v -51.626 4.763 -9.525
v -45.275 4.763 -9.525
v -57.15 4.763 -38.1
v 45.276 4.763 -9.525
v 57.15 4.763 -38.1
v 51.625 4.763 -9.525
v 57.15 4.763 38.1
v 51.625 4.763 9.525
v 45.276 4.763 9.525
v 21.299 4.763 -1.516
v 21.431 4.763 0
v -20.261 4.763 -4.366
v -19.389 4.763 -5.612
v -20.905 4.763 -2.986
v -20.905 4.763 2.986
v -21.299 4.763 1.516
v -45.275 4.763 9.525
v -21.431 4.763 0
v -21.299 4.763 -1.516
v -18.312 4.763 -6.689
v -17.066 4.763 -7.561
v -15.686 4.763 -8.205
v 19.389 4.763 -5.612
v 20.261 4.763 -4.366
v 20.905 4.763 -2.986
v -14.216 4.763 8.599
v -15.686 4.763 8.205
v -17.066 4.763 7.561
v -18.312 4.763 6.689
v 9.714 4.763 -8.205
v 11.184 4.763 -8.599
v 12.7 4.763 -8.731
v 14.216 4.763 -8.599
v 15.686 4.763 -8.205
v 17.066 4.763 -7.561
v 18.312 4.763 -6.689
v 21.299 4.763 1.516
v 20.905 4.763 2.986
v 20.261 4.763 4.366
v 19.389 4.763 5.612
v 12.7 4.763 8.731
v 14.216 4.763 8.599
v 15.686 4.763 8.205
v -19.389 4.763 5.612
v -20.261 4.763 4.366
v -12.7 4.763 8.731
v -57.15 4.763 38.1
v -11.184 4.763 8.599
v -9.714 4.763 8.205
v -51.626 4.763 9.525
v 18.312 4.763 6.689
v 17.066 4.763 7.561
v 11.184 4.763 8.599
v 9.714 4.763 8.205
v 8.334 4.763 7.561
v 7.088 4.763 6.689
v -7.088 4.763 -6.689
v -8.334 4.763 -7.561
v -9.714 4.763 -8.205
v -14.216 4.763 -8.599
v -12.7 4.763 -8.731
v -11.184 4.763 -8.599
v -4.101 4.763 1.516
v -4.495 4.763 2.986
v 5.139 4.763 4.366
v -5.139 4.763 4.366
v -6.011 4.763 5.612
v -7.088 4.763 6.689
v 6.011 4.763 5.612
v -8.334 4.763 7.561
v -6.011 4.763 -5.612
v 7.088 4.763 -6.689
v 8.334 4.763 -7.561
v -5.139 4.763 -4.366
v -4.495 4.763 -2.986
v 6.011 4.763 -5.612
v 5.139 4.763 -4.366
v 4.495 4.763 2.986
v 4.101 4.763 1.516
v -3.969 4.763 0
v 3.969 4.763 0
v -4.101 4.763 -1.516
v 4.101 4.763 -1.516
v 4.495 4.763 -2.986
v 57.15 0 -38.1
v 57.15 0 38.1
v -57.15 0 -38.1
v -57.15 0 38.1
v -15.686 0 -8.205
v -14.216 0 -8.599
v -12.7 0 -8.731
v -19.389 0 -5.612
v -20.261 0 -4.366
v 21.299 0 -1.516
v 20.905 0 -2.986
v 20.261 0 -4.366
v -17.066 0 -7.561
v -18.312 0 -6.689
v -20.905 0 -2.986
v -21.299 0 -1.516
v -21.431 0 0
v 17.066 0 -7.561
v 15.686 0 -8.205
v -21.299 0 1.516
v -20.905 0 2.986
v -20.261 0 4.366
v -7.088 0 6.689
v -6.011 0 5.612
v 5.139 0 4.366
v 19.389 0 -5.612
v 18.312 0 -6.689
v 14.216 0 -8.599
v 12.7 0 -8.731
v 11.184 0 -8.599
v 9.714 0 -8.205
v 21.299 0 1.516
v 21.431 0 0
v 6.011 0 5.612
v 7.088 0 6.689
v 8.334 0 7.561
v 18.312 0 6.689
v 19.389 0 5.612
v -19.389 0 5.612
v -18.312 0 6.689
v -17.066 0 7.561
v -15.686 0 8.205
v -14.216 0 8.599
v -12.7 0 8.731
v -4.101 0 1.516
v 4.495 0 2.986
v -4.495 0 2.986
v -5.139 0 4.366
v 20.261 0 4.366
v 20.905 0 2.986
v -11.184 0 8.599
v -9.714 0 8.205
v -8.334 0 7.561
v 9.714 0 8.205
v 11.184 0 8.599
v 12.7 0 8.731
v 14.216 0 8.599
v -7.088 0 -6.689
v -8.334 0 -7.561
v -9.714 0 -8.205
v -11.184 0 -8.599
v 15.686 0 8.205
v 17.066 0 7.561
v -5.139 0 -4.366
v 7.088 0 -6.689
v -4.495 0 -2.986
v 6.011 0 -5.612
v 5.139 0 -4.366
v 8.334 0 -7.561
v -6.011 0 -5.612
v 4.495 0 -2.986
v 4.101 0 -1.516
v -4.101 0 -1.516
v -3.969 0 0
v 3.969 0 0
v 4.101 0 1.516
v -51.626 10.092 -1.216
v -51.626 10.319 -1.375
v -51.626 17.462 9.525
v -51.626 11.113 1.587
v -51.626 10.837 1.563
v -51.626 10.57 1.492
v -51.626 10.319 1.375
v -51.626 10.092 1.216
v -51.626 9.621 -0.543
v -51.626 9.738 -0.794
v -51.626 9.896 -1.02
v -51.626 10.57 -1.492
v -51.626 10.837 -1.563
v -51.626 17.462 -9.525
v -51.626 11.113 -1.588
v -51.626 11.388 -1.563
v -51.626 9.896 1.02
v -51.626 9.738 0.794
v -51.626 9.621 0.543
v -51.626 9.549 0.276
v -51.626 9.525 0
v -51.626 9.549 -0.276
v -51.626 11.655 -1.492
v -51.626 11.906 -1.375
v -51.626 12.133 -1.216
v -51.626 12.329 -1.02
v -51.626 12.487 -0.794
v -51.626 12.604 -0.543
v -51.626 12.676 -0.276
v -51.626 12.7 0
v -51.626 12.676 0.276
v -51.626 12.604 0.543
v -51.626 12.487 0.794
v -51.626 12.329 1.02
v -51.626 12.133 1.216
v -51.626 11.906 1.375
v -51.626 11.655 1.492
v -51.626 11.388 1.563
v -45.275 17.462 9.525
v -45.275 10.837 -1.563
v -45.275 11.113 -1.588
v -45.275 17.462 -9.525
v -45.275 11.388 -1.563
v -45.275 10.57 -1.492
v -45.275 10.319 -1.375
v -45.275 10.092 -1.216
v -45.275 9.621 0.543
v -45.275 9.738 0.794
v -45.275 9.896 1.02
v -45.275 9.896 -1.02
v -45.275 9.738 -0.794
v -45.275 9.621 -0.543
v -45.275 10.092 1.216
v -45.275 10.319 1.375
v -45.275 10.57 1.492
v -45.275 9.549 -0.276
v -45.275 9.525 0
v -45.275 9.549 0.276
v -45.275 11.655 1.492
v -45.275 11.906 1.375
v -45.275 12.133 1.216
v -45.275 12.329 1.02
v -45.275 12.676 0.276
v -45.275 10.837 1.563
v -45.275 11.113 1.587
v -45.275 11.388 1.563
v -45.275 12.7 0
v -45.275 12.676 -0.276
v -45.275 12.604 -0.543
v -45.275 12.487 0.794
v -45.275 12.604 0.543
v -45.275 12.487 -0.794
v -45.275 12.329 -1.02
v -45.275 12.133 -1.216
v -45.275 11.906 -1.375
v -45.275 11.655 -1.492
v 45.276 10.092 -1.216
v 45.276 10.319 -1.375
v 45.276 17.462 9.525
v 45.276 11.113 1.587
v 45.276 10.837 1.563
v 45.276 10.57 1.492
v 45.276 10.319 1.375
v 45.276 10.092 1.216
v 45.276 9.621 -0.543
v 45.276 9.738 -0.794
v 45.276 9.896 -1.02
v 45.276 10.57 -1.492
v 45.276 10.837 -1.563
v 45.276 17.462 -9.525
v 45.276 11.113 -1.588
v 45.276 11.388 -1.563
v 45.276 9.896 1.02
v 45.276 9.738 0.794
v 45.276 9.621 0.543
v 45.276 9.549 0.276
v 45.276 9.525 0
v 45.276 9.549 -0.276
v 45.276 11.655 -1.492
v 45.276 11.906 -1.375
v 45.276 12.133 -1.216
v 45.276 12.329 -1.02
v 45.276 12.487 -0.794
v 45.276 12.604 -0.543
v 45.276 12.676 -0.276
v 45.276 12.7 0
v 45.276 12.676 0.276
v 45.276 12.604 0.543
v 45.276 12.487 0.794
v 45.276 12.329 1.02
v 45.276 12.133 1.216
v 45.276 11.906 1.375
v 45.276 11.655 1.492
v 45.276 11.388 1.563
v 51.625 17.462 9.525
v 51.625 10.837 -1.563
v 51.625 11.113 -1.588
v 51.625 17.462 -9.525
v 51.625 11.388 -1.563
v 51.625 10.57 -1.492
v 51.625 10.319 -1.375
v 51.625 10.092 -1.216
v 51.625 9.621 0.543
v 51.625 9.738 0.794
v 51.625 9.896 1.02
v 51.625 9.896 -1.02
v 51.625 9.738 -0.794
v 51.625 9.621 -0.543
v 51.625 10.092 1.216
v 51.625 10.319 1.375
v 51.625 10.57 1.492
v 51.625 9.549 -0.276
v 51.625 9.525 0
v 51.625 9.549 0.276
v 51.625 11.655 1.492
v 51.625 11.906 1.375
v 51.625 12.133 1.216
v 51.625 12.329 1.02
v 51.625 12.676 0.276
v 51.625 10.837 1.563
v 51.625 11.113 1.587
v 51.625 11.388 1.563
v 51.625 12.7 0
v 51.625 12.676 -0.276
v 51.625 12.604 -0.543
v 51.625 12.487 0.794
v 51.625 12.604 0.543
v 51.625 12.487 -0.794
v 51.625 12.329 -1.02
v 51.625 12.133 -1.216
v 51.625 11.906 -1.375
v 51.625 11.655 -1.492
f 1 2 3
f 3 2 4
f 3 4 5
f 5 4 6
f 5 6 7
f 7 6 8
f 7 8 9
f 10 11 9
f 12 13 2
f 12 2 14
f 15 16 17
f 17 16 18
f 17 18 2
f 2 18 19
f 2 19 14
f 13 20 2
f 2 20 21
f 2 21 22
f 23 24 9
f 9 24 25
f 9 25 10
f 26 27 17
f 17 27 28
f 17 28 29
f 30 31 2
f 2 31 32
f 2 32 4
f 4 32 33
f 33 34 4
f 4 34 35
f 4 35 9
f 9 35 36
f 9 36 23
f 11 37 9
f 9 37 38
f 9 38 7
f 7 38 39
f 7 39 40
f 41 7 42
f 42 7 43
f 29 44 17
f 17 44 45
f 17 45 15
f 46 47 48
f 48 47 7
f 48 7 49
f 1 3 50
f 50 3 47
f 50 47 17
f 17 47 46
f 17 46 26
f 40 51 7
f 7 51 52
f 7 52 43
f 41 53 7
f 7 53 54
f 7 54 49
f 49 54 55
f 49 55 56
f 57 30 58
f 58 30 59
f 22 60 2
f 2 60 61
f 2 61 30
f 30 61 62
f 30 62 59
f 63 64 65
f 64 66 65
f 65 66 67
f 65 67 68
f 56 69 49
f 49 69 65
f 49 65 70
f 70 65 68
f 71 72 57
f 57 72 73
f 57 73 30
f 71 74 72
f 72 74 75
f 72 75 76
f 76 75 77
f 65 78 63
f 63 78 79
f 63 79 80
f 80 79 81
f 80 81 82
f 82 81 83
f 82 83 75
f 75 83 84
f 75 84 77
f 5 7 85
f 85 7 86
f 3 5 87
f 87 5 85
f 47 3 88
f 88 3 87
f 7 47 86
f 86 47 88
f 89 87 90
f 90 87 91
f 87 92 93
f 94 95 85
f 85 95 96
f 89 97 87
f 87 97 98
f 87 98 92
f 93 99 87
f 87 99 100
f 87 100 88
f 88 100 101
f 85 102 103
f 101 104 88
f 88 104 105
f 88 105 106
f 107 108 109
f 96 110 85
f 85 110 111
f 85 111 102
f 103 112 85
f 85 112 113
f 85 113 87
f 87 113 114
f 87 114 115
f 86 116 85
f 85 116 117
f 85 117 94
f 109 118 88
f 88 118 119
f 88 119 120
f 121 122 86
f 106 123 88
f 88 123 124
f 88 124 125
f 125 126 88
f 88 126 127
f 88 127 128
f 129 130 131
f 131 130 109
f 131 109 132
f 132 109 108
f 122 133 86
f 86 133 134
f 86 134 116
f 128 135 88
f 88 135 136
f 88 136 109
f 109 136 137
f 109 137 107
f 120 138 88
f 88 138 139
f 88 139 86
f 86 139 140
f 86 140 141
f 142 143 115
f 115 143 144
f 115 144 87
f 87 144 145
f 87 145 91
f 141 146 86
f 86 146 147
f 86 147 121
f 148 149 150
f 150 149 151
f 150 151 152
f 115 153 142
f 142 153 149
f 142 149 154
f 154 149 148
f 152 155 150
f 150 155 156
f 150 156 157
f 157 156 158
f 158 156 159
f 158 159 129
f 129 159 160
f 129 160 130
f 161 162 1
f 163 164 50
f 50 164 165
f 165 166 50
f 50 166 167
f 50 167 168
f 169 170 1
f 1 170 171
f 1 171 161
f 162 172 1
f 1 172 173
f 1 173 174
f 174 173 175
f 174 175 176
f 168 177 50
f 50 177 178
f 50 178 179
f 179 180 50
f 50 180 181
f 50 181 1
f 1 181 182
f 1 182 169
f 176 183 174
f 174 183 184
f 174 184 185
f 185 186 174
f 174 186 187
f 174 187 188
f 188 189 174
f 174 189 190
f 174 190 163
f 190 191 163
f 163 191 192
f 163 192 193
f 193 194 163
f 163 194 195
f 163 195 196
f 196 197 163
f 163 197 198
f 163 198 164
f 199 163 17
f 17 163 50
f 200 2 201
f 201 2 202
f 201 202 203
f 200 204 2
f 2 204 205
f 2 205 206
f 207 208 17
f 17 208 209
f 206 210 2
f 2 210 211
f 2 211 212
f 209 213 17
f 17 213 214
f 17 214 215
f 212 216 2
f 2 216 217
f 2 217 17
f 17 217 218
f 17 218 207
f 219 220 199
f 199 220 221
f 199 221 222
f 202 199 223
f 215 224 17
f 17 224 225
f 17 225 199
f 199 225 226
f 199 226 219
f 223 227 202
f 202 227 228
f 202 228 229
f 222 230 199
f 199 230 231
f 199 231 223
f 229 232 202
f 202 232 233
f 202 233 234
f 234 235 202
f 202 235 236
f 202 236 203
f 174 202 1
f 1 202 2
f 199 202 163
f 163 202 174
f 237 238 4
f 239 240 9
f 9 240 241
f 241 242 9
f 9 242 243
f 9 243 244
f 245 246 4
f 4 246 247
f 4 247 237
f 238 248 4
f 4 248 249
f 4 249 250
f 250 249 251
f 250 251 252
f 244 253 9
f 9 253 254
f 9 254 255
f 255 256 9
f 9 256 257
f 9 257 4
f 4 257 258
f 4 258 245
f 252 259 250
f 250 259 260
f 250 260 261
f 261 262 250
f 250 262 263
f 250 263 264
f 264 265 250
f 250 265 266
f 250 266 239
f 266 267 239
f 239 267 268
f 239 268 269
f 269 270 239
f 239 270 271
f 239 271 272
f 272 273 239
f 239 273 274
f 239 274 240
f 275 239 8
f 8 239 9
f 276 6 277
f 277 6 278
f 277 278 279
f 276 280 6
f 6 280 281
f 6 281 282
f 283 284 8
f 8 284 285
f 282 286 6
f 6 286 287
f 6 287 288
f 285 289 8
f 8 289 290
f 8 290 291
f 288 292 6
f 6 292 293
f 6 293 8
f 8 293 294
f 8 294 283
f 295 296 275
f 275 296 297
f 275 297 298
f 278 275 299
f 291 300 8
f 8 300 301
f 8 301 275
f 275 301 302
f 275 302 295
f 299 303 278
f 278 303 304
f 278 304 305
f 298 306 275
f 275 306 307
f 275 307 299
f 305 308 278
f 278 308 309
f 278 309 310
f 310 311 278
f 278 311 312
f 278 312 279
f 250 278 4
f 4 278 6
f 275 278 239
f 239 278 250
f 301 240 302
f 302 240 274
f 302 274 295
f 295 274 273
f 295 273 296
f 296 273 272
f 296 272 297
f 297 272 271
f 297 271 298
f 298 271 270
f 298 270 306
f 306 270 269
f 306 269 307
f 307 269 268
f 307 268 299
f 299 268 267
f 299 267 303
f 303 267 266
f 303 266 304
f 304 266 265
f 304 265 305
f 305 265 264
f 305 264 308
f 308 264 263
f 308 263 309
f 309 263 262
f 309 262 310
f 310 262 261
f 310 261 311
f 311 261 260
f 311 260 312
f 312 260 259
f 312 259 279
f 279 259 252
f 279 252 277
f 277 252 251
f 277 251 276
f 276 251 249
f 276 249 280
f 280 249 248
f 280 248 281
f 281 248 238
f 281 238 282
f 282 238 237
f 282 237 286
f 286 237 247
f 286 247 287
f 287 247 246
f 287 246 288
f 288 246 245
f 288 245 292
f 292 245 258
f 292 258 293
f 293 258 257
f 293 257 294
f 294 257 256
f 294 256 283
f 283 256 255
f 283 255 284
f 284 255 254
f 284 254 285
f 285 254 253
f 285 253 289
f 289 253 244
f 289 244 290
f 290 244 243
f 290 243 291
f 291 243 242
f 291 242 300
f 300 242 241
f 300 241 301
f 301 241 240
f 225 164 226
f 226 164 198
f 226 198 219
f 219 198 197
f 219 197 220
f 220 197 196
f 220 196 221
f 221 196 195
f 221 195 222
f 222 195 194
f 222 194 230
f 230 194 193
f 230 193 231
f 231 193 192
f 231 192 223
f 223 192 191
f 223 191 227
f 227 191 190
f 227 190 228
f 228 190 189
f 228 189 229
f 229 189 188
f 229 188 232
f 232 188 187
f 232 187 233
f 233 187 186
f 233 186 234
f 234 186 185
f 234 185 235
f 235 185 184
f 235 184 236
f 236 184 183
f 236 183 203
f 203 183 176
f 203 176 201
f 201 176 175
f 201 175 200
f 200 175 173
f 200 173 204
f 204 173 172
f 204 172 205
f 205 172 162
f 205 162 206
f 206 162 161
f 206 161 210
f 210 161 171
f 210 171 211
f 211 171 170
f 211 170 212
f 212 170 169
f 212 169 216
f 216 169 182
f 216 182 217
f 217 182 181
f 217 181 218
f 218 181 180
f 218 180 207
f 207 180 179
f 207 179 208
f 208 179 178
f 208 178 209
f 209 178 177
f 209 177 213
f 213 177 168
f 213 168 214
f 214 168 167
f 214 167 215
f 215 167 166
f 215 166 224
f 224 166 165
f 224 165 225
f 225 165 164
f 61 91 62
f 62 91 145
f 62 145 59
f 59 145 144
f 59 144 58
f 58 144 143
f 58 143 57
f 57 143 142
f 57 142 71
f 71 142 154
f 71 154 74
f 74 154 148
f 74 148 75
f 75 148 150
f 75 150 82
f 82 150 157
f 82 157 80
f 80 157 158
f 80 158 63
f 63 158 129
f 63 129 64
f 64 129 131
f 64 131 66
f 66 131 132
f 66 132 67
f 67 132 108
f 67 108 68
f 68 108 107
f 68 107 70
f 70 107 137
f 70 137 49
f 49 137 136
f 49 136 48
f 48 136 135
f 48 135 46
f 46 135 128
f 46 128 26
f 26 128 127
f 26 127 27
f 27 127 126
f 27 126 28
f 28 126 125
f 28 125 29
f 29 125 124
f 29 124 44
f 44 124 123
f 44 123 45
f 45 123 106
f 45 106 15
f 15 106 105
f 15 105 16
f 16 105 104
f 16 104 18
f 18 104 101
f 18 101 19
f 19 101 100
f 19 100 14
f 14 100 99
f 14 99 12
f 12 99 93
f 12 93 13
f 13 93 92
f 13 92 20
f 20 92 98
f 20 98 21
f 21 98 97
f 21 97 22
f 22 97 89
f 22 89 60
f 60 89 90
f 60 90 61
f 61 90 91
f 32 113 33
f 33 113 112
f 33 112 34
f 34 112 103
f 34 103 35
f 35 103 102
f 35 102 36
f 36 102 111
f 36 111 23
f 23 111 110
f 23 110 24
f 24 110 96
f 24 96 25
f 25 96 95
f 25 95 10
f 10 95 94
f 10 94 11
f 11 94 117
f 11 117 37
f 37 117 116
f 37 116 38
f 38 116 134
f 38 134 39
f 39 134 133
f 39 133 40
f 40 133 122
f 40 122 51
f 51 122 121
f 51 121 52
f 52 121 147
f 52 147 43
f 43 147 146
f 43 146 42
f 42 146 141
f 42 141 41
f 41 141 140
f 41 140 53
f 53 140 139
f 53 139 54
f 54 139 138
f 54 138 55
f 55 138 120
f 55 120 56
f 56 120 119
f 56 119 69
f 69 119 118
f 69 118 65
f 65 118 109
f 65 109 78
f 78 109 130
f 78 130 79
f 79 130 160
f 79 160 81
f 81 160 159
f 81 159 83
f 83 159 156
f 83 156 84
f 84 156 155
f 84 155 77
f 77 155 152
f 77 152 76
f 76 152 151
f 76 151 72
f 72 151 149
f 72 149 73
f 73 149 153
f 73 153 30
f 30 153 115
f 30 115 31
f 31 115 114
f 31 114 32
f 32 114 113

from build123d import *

# Parameters (mm, degrees)
SKETCH1_W               = 114.3
SKETCH1_H               = 76.2
MAINCOVER_DEPTH         = 4.7625
SKETCH2_W               = 6.35
SKETCH2_H               = 19.05
BOSS_EXTRUDE1_DEPTH     = 12.7
SKETCH3_R               = 1.5875
CUT_EXTRUDE1_DEPTH      = 6.5245
CUT_EXTRUDE1_DEPTH_BACK = 109.7755
SKETCH4_R               = 8.73125
CUT_EXTRUDE2_DEPTH      = 18.4625


with BuildPart() as part:
    # Sketch1 → MainCover (new body)
    with BuildSketch(Plane(origin=(0, 0, 0), x_dir=(1, 0, 0), z_dir=(0, 1, 0))):
        Rectangle(SKETCH1_W, SKETCH1_H)
    extrude(amount=MAINCOVER_DEPTH)

    # Sketch2 → Boss-Extrude1 (add)
    with BuildSketch(Plane(origin=(0, 4.7625, 0), x_dir=(1, 0, 0), z_dir=(0, 1, 0))):
        with Locations((-48.4505, 0)):
            Rectangle(SKETCH2_W, SKETCH2_H)
        with Locations((48.4505, 0)):
            Rectangle(SKETCH2_W, SKETCH2_H)
    extrude(amount=BOSS_EXTRUDE1_DEPTH)

    # Sketch3 → Cut-Extrude1 (cut, two sides)
    with BuildSketch(Plane.ZY.offset(51.6255)) as cut_extrude1_sk:
        with Locations((0, 11.1125)):
            Circle(SKETCH3_R)
    extrude(amount=CUT_EXTRUDE1_DEPTH, mode=Mode.SUBTRACT)
    extrude(cut_extrude1_sk.sketch, amount=-CUT_EXTRUDE1_DEPTH_BACK, mode=Mode.SUBTRACT)

    # Sketch4 → Cut-Extrude2 (cut, through all)
    with BuildSketch(Plane.XZ):
        with Locations((12.7, 0)):
            Circle(SKETCH4_R)
        with Locations((-12.7, 0)):
            Circle(SKETCH4_R)
    extrude(amount=-CUT_EXTRUDE2_DEPTH, mode=Mode.SUBTRACT)


solid = part.part
